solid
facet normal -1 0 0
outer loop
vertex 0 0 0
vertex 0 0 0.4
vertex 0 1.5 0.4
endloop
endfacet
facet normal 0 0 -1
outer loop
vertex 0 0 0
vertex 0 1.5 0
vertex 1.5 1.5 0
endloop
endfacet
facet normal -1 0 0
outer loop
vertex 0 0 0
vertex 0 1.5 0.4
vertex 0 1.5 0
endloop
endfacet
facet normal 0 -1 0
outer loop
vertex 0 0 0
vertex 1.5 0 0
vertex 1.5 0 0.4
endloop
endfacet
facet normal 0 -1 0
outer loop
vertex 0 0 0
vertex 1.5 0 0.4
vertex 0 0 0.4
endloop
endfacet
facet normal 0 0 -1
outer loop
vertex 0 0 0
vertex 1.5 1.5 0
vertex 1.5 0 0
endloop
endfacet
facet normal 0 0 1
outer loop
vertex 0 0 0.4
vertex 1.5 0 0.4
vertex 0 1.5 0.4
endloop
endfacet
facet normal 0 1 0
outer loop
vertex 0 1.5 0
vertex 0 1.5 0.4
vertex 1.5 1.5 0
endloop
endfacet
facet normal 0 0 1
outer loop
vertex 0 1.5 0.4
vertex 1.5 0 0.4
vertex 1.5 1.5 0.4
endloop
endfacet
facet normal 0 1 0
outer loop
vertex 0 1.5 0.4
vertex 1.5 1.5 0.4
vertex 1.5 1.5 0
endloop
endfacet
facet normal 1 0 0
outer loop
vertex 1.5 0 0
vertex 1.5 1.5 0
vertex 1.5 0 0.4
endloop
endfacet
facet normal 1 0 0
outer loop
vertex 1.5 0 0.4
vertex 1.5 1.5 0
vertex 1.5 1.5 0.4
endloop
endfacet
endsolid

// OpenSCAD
/* Warning, this is a very basic generator with a lot of approximation 
input data : [X2QFN, 9XX, 1.5x1.5x0.40mm, 10, , A, C04-00376A]
generated by com.zoubworld.electronics.cad.model3d.Basic
Date : Sun Feb 15 10:50:48 CET 2026
*/

//body
color("black")
translate([0,0,0])
cube([1.5,1.5,0.4], center=false);
